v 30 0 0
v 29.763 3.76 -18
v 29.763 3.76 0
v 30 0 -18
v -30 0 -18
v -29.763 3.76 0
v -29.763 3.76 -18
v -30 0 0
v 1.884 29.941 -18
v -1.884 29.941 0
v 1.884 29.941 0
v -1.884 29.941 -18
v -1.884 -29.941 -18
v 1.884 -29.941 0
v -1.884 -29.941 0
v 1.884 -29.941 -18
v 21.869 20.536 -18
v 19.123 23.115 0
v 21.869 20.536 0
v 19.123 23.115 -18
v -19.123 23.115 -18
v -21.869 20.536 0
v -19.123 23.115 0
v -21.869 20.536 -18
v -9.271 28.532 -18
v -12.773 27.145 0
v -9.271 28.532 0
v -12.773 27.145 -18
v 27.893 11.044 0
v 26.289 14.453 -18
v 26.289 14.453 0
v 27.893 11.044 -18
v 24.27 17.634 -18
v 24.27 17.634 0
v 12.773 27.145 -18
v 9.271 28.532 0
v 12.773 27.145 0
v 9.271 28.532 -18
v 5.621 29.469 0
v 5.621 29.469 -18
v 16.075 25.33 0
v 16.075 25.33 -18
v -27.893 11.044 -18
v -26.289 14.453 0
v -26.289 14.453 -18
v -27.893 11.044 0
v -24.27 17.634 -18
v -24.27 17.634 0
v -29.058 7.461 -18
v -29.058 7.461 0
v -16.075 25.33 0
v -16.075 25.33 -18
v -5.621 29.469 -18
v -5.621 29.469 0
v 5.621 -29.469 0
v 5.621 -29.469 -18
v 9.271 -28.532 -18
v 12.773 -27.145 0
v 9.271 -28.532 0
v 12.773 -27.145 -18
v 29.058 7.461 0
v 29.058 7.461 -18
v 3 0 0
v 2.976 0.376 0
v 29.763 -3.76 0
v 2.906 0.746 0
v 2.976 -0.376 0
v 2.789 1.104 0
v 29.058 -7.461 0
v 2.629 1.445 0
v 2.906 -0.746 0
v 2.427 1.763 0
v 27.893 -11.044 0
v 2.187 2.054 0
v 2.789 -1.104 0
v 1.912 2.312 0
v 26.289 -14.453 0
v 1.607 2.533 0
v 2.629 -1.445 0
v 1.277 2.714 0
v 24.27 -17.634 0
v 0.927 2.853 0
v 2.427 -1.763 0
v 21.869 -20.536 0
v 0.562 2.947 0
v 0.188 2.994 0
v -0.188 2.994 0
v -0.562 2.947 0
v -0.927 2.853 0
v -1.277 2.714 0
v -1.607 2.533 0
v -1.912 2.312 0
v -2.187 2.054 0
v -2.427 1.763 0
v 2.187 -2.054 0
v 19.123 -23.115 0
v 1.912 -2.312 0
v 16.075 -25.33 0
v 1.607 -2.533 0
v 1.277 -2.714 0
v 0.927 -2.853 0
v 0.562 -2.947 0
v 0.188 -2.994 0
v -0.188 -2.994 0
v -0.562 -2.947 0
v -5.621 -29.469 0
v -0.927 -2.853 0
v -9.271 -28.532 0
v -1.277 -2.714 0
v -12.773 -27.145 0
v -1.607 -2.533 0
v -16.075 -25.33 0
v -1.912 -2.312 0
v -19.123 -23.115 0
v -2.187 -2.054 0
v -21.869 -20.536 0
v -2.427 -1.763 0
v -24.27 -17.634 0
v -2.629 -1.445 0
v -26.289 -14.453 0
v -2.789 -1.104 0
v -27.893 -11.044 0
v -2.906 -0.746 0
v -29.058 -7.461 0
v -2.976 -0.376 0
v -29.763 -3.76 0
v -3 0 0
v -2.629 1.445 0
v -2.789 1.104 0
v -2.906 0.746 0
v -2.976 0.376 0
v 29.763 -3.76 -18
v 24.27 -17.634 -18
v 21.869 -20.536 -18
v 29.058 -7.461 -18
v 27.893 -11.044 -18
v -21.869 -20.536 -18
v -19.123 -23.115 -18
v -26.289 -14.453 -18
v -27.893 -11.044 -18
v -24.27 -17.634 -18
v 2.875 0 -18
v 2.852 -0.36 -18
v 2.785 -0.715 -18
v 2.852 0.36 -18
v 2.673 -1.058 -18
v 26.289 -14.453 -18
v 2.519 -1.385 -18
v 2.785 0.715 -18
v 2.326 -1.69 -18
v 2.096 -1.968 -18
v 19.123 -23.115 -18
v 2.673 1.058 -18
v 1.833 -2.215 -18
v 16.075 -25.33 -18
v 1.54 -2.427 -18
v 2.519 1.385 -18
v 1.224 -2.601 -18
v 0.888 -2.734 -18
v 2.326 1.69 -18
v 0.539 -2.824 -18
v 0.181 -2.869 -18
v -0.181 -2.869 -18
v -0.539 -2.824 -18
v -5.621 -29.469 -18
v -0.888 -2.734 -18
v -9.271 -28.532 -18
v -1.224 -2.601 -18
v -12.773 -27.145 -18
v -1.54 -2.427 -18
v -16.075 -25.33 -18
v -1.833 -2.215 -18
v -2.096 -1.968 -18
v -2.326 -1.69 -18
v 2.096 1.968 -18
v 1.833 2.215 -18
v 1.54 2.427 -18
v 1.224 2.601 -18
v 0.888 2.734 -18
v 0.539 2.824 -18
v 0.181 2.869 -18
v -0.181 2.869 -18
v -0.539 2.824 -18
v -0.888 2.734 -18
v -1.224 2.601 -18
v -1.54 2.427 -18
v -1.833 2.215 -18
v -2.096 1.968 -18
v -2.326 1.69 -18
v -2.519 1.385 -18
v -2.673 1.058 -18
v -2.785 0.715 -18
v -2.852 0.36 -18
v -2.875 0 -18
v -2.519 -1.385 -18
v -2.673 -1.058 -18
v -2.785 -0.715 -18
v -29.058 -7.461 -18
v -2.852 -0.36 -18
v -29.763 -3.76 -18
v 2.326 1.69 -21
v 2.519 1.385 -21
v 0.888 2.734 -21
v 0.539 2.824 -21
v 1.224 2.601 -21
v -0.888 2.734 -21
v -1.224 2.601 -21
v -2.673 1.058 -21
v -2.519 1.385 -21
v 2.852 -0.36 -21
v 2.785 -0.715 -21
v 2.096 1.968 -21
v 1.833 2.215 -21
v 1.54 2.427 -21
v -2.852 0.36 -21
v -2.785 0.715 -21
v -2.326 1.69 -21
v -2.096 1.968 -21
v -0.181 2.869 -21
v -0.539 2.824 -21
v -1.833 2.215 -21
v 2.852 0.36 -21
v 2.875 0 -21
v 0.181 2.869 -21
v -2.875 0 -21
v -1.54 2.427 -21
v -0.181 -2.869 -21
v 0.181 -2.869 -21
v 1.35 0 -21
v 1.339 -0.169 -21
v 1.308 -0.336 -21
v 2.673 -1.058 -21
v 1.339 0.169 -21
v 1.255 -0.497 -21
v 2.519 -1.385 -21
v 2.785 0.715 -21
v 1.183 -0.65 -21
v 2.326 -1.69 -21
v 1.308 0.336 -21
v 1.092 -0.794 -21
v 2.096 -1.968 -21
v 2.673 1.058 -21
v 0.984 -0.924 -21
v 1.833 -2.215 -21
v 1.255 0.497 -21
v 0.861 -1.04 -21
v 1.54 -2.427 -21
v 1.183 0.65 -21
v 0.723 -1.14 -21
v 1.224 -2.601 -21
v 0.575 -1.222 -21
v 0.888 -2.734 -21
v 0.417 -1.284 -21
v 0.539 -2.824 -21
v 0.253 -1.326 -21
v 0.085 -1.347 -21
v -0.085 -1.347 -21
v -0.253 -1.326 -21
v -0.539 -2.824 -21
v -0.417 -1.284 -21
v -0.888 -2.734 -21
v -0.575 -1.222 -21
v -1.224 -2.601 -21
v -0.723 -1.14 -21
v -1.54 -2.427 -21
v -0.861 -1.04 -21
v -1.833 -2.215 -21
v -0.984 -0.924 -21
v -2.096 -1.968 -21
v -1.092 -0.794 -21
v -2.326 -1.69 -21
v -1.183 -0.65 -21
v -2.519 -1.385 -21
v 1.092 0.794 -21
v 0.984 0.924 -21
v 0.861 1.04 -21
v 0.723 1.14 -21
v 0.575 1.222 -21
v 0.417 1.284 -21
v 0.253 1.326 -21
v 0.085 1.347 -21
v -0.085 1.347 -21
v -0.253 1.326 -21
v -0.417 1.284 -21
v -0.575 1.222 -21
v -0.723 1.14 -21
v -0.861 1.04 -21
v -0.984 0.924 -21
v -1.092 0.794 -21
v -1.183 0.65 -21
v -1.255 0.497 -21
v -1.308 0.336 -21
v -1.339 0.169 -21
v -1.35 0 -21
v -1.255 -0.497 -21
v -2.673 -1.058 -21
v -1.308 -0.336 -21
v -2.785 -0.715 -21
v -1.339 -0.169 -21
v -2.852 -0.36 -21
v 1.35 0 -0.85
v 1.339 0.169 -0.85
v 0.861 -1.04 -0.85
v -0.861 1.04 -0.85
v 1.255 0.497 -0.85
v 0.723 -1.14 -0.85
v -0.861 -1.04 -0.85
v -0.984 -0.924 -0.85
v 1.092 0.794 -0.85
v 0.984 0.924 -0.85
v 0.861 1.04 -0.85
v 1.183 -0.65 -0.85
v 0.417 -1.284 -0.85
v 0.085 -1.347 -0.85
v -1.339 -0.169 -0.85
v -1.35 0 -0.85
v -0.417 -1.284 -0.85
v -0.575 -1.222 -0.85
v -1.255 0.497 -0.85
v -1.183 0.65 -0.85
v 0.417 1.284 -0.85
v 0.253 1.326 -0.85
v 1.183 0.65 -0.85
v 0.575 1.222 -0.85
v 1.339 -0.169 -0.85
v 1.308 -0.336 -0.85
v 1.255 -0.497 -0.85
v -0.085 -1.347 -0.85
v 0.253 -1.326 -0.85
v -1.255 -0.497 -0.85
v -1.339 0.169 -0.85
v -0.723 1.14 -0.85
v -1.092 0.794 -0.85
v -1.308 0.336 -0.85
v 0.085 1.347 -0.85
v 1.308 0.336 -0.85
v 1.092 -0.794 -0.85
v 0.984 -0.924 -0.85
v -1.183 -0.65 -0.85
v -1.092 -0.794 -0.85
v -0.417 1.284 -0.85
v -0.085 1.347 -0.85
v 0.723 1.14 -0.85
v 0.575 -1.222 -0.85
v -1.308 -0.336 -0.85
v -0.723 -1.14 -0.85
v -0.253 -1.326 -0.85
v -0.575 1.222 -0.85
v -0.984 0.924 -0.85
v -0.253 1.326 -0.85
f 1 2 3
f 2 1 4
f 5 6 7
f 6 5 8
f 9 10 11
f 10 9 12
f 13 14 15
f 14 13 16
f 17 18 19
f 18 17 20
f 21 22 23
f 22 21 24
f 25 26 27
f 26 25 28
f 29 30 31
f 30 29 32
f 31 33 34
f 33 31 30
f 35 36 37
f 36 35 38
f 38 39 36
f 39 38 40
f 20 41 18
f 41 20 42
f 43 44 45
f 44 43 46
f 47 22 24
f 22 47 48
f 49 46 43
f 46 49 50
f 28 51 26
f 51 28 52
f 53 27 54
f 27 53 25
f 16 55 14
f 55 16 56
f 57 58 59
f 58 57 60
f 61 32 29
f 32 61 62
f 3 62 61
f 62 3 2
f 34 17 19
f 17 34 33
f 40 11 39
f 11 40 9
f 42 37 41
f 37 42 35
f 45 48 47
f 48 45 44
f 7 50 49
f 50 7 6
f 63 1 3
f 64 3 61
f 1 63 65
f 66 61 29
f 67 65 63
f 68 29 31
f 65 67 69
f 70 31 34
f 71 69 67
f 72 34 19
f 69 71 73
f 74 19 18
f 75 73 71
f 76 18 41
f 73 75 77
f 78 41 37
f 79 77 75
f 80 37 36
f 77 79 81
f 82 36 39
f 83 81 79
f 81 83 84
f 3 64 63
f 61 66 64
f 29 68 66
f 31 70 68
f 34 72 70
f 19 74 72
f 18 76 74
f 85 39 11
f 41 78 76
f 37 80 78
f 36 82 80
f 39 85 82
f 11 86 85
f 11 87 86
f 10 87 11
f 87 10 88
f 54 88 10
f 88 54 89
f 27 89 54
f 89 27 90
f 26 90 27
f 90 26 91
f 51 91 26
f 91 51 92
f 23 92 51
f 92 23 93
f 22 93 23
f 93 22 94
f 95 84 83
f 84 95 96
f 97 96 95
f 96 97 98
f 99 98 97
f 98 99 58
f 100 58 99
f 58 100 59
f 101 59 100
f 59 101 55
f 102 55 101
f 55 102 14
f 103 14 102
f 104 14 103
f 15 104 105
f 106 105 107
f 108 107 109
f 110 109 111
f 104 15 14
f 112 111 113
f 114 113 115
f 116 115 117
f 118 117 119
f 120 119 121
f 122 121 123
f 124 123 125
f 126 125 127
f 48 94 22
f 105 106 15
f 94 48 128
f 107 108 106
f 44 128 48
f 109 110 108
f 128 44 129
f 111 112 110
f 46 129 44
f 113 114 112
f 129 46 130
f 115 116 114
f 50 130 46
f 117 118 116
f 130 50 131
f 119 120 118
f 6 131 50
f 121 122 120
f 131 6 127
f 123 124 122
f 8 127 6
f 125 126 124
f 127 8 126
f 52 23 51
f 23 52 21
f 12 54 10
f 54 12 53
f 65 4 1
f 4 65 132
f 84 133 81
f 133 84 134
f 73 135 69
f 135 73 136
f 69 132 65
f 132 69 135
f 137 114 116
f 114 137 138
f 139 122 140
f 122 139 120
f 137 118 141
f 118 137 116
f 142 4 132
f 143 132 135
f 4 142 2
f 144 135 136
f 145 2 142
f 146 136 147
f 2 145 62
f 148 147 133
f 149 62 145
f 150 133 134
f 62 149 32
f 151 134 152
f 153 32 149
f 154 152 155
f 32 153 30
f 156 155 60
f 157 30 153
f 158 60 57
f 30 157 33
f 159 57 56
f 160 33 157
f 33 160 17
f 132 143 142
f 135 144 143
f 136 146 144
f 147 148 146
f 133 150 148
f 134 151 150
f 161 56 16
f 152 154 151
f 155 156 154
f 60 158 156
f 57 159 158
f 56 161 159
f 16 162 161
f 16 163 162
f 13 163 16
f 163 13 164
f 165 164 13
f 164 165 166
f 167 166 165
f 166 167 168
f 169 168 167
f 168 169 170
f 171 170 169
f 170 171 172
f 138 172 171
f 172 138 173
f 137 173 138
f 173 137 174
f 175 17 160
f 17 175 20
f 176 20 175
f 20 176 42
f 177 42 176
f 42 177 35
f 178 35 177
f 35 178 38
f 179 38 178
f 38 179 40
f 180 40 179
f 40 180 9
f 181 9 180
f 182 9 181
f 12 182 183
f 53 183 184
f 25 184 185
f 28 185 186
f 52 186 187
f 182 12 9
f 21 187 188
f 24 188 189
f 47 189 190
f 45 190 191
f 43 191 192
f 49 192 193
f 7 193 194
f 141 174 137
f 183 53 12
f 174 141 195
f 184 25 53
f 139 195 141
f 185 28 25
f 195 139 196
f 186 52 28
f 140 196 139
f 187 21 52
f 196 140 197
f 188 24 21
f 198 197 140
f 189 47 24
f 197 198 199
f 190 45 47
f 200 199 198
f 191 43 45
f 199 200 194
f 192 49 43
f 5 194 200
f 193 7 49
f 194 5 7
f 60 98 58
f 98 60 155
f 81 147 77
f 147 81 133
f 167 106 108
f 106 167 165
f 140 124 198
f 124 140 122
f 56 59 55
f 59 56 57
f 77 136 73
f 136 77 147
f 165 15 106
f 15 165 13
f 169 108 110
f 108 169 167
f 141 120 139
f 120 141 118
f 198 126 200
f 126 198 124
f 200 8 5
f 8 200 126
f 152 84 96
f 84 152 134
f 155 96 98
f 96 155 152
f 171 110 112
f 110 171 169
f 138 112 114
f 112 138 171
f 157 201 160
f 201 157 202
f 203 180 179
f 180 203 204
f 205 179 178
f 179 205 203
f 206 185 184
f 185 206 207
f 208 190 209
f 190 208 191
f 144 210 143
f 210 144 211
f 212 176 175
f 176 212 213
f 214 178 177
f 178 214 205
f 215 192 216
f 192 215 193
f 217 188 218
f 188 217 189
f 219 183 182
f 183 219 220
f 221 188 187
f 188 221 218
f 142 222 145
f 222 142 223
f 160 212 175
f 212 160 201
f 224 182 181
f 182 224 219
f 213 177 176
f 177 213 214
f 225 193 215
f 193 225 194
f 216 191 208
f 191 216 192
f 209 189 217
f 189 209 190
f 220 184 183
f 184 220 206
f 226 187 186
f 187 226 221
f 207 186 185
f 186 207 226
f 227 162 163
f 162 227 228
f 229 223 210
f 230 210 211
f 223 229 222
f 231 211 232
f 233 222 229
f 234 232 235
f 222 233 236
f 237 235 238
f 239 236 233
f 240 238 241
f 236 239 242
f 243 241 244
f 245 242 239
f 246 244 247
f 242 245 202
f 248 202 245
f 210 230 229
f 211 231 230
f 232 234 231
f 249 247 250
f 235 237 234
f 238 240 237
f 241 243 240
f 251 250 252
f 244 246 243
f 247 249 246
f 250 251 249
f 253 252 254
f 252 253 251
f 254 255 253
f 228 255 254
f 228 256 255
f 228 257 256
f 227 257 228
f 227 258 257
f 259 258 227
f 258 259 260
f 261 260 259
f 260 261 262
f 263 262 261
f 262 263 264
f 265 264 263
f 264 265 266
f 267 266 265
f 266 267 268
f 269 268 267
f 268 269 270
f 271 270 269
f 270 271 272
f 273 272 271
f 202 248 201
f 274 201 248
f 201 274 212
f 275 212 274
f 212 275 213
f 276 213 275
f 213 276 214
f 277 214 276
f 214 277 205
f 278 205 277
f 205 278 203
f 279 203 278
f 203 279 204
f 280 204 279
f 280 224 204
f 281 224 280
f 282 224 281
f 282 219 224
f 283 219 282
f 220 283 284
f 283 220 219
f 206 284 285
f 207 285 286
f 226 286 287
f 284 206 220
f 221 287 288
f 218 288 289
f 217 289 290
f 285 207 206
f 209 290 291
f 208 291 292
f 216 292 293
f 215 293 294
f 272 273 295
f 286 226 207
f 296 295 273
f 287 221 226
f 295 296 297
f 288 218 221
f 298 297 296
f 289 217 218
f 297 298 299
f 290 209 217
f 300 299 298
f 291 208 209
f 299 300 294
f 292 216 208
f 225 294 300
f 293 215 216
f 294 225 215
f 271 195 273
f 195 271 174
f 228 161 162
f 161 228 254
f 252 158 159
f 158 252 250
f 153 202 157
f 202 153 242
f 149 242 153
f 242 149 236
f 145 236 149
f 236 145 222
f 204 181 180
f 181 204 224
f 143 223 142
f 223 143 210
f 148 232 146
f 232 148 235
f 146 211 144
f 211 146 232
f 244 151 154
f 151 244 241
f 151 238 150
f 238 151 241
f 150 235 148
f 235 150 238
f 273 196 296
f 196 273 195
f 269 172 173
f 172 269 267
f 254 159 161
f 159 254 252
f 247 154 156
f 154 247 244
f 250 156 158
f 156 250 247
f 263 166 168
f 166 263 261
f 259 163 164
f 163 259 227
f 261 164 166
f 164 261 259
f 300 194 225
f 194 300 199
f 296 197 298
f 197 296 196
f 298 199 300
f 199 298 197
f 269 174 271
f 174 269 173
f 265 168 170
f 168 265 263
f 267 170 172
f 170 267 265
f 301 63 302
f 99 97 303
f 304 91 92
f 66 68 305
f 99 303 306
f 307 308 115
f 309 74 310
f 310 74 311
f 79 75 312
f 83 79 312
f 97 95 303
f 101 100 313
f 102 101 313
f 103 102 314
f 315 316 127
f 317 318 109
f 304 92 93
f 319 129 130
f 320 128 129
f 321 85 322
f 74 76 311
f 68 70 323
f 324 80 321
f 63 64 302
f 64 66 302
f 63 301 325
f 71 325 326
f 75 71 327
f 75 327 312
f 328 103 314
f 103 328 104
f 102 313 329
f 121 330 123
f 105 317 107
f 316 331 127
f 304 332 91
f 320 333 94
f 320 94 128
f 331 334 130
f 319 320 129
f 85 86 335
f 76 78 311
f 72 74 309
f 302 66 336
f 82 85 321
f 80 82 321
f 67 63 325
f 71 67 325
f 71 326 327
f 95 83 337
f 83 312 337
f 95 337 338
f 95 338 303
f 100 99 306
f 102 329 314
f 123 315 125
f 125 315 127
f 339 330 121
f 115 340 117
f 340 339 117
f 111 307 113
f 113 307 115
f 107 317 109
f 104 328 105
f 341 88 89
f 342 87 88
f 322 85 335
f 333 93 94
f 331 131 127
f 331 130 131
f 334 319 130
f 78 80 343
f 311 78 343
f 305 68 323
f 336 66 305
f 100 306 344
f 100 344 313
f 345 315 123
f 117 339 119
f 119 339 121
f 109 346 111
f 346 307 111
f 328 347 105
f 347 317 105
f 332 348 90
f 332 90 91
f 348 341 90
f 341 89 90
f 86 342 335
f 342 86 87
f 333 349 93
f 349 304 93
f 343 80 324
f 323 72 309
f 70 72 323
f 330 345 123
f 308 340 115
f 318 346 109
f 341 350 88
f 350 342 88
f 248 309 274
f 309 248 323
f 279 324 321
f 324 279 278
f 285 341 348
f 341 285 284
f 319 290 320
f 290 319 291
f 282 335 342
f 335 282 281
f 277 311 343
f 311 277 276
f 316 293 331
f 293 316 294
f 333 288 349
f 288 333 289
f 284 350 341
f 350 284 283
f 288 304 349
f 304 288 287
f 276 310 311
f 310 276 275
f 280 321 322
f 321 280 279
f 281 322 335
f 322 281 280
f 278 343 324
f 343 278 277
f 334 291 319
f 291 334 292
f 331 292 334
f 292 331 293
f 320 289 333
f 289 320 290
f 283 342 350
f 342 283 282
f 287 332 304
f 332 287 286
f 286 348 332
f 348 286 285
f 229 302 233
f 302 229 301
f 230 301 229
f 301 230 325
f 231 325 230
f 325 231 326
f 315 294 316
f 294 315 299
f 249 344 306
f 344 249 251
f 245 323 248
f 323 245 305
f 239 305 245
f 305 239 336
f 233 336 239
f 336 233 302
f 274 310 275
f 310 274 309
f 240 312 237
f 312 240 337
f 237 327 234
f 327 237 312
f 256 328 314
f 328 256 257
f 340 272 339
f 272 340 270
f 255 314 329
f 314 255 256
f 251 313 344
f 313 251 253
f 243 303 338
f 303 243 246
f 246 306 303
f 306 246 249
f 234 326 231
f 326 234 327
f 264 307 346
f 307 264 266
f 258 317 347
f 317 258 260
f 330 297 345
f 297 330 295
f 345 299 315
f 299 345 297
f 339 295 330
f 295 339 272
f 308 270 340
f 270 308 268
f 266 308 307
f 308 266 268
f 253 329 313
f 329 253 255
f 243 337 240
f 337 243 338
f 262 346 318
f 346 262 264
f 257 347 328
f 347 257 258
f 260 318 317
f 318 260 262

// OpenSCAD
$fn = 50;


difference() {
	union() {
		translate(v = [0, 0, -18.0000000000]) {
			cylinder(h = 18, r = 30.0000000000);
		}
		#translate(v = [0, 0, -21.0000000000]) {
			cylinder(h = 21, r = 2.8750000000);
		}
	}
	union() {
		translate(v = [0, 0, 0]) {
			rotate(a = [0, 0, 0]) {
				difference() {
					union() {
						translate(v = [0, 0, -21.0000000000]) {
							cylinder(h = 21, r = 1.0000000000);
						}
						translate(v = [0, 0, -0.8500000000]) {
							cylinder(h = 0.8500000000, r1 = 1.3500000000, r2 = 3.0000000000);
						}
						translate(v = [0, 0, -21.0000000000]) {
							cylinder(h = 21, r = 1.3500000000);
						}
						translate(v = [0, 0, -21.0000000000]) {
							cylinder(h = 21, r = 1.0000000000);
						}
					}
					union();
				}
			}
		}
	}
}
